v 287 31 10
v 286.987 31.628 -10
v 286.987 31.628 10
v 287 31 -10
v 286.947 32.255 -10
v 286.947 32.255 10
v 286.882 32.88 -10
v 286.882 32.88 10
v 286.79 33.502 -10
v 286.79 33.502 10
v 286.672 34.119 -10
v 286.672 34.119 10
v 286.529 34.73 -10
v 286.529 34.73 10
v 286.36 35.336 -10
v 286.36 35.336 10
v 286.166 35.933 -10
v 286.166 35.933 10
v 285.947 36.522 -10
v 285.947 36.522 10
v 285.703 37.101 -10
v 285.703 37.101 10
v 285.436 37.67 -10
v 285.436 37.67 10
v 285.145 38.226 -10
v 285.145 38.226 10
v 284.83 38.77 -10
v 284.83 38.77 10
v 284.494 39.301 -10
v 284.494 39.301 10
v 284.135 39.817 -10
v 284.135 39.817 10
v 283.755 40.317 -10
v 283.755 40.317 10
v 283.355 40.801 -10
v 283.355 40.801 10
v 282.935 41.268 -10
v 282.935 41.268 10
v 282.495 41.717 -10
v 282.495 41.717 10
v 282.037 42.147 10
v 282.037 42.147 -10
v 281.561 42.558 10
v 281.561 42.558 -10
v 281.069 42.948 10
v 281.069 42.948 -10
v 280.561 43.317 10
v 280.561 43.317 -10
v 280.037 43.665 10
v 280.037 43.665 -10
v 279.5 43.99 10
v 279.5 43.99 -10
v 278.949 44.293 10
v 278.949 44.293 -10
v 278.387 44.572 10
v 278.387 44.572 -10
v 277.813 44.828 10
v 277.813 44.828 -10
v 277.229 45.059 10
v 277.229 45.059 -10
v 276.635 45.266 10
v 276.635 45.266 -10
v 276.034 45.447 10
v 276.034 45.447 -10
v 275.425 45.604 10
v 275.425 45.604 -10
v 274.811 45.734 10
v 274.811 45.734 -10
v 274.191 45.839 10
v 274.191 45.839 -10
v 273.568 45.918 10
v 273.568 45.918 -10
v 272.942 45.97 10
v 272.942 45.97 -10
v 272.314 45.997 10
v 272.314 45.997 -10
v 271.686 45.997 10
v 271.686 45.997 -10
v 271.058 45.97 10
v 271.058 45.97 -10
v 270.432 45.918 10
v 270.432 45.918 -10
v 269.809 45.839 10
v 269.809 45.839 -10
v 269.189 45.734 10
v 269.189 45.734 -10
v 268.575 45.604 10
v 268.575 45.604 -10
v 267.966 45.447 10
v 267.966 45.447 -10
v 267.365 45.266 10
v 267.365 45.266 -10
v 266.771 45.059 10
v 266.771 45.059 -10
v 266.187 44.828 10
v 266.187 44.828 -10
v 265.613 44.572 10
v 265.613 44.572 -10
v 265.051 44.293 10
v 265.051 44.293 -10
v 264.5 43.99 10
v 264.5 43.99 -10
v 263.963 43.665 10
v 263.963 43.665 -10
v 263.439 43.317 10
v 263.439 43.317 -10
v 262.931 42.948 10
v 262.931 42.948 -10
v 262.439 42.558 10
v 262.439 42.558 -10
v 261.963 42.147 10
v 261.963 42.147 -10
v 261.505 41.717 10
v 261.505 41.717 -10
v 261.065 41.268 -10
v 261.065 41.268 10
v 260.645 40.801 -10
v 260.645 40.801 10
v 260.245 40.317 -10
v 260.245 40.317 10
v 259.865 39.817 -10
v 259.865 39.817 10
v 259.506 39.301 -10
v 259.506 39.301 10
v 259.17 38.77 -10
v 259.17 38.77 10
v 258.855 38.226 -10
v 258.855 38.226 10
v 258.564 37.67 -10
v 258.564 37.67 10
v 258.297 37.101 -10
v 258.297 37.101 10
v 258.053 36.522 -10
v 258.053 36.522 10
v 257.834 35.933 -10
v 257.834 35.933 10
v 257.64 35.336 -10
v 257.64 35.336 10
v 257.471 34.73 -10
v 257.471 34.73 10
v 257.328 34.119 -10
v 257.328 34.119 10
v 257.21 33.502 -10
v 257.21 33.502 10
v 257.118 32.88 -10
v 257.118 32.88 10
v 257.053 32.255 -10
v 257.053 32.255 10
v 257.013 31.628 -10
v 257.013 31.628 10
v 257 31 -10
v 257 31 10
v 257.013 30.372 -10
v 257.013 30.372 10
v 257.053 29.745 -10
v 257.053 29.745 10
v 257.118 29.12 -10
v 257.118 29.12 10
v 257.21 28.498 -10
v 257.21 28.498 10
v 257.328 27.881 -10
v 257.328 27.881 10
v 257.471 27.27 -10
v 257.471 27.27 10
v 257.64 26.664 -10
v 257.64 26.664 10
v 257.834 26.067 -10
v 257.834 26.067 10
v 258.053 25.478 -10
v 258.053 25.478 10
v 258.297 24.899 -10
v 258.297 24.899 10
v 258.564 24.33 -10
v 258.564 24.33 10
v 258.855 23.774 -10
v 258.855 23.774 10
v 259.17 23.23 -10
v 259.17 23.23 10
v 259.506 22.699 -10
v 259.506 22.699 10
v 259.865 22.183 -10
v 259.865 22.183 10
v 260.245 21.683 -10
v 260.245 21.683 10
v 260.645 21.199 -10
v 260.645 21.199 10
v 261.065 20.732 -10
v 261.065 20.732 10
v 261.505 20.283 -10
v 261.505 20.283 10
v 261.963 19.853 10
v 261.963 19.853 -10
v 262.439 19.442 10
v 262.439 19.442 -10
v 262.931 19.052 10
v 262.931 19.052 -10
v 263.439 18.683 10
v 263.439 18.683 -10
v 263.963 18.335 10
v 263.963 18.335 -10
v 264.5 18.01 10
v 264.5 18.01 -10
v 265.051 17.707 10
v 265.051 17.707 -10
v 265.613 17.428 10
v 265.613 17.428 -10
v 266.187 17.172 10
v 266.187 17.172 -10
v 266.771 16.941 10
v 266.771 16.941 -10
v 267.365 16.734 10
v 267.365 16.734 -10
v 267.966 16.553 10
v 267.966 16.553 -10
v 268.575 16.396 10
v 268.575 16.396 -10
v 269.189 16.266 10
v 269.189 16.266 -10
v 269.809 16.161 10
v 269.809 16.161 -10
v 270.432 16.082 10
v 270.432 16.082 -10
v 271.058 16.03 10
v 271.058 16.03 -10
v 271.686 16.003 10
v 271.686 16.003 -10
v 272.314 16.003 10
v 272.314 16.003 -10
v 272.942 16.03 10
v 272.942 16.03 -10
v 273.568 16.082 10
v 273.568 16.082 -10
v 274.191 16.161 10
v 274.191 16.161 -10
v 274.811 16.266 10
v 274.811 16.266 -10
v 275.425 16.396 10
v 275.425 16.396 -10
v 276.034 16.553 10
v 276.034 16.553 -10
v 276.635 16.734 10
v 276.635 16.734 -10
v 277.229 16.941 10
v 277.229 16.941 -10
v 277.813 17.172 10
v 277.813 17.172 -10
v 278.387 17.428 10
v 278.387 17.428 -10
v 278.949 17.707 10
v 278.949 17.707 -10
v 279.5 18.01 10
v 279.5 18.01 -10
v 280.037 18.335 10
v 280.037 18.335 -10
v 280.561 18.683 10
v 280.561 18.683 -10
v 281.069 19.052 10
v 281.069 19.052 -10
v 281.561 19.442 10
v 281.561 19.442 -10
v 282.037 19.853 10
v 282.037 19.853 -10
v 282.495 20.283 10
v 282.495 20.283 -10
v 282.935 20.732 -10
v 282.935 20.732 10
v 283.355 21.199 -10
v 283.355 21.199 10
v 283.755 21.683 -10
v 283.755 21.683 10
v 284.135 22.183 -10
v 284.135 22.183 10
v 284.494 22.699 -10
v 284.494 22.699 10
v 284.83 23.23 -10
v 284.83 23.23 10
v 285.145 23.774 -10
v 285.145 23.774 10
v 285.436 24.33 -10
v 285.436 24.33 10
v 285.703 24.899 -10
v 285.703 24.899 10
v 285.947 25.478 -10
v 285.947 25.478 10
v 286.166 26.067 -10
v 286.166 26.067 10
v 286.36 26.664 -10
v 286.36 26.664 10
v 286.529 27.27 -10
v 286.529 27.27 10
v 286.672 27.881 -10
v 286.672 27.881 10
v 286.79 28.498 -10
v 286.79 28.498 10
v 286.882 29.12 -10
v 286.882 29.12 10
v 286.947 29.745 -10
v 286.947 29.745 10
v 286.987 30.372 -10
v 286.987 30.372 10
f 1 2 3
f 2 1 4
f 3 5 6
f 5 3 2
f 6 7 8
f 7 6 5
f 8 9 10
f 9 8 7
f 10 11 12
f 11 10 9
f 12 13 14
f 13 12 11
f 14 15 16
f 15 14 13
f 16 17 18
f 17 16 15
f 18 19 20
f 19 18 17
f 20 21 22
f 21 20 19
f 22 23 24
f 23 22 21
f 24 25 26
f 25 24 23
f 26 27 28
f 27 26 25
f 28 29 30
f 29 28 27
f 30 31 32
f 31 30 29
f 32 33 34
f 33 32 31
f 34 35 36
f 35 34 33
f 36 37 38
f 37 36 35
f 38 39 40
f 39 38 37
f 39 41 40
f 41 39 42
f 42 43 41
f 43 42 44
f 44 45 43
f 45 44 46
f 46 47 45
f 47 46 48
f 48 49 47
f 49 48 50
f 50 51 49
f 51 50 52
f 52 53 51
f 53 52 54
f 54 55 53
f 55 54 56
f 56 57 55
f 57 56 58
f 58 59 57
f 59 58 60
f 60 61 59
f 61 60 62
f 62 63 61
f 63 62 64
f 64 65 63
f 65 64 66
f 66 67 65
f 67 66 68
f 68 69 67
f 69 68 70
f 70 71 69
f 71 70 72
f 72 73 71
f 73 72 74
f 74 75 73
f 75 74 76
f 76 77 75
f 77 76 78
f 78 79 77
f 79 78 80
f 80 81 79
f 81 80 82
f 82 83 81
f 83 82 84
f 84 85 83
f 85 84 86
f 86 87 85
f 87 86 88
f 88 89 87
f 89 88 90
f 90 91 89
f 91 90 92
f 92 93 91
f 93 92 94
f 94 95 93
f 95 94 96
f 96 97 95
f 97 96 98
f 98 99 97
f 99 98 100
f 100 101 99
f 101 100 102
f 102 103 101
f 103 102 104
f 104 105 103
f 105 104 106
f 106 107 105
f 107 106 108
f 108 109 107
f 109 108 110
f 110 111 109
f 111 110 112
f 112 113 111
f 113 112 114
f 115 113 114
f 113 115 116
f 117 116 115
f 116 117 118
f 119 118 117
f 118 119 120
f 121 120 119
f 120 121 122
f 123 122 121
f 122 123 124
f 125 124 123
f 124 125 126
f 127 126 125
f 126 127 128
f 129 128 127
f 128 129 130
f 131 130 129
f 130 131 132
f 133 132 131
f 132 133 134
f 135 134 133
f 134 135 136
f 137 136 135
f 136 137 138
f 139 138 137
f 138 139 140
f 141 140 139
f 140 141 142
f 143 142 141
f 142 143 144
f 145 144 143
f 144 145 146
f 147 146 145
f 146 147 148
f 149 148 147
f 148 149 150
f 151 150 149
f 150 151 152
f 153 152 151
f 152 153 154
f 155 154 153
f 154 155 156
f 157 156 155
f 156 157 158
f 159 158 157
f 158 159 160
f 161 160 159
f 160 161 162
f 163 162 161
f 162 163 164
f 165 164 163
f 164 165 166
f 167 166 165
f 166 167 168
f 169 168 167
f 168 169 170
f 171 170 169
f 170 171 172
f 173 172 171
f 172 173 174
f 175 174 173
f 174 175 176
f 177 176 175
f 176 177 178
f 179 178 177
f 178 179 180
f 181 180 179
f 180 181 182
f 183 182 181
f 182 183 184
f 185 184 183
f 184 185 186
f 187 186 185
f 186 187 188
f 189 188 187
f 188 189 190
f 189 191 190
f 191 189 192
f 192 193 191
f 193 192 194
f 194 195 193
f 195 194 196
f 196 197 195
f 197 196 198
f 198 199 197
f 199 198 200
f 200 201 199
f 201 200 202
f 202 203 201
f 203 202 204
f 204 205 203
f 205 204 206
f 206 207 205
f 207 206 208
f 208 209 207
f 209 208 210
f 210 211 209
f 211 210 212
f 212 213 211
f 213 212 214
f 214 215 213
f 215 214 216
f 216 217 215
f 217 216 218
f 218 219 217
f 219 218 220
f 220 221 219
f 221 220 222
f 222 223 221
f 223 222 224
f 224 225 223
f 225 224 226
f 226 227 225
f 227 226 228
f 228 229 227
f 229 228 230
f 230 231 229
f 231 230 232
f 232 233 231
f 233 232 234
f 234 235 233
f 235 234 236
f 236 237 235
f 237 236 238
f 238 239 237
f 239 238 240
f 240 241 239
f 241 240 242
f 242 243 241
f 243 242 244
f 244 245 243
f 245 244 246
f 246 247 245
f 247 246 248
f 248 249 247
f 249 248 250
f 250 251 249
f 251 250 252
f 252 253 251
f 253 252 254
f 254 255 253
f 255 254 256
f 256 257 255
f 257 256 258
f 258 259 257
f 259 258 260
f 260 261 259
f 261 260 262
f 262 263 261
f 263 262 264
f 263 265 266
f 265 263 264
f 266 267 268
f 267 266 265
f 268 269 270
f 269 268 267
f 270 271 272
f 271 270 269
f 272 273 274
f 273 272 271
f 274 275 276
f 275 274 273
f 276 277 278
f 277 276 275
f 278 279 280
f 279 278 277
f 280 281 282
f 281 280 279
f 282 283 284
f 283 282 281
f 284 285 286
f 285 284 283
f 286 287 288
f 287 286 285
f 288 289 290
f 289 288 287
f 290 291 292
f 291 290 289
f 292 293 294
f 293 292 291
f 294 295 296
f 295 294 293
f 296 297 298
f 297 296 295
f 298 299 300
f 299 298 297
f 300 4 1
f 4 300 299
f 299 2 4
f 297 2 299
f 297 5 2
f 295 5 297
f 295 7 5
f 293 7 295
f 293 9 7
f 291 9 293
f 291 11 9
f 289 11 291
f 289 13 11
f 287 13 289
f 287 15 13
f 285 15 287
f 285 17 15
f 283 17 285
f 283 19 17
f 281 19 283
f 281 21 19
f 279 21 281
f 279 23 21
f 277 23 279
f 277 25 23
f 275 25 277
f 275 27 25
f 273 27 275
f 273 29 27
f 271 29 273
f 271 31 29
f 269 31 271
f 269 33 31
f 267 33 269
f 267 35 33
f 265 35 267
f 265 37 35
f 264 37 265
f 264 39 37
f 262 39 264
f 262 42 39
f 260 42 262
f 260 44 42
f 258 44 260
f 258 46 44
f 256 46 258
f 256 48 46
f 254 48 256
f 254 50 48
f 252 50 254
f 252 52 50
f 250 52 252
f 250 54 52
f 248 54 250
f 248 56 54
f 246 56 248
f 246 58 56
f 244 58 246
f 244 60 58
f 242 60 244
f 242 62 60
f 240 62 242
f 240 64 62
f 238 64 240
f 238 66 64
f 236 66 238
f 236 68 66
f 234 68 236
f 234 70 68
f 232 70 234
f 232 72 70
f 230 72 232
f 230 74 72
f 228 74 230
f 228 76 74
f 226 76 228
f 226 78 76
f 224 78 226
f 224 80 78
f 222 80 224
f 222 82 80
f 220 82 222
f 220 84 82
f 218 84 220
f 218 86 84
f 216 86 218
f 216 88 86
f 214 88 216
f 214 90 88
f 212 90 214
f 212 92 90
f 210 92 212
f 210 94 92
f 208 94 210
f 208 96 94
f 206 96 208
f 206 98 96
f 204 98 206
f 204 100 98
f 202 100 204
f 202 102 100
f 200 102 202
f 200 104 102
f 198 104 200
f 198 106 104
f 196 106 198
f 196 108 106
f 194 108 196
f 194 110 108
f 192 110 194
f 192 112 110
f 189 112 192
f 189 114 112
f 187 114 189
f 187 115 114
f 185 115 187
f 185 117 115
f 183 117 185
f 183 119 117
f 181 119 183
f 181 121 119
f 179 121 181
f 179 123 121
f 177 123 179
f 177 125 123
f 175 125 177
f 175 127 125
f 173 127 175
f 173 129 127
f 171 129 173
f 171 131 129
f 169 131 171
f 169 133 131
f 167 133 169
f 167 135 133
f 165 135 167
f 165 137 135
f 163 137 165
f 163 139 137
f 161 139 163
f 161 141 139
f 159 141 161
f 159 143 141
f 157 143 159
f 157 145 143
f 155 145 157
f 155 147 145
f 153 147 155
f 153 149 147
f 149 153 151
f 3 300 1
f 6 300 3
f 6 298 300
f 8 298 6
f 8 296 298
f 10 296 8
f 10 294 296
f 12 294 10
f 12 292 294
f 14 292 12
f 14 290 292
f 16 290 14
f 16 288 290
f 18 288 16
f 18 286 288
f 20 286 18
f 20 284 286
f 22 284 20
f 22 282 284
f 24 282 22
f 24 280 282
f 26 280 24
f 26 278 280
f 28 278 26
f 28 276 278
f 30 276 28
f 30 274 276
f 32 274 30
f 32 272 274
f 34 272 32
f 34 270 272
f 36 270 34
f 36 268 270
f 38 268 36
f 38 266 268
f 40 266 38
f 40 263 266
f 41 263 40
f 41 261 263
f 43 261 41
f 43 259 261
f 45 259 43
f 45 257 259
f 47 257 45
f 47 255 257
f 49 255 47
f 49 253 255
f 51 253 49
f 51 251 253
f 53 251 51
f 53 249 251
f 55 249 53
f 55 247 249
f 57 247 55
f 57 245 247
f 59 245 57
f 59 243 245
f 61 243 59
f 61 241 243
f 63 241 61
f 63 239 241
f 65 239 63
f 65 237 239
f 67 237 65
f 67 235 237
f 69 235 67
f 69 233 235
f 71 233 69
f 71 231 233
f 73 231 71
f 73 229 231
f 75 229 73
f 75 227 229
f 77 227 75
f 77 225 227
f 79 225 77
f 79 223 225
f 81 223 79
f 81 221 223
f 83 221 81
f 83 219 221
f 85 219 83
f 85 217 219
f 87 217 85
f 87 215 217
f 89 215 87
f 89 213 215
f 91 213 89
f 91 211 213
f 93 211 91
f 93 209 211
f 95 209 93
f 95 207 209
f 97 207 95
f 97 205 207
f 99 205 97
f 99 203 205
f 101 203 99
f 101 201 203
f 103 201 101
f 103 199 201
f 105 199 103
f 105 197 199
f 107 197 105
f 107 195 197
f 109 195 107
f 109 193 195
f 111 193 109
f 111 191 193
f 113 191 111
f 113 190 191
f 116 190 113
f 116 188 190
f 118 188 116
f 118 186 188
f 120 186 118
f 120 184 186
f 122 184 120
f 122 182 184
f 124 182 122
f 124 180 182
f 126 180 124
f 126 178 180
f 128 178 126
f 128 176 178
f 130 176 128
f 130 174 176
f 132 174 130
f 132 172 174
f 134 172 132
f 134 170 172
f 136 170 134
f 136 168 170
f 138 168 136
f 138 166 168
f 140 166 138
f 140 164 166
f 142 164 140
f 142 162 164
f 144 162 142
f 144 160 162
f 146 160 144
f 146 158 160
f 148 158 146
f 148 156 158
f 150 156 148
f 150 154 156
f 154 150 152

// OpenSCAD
$fn = 150;

translate([272, 31, 0])
rotate([0, 0, 0])
cylinder(20, 15, 15, true);
